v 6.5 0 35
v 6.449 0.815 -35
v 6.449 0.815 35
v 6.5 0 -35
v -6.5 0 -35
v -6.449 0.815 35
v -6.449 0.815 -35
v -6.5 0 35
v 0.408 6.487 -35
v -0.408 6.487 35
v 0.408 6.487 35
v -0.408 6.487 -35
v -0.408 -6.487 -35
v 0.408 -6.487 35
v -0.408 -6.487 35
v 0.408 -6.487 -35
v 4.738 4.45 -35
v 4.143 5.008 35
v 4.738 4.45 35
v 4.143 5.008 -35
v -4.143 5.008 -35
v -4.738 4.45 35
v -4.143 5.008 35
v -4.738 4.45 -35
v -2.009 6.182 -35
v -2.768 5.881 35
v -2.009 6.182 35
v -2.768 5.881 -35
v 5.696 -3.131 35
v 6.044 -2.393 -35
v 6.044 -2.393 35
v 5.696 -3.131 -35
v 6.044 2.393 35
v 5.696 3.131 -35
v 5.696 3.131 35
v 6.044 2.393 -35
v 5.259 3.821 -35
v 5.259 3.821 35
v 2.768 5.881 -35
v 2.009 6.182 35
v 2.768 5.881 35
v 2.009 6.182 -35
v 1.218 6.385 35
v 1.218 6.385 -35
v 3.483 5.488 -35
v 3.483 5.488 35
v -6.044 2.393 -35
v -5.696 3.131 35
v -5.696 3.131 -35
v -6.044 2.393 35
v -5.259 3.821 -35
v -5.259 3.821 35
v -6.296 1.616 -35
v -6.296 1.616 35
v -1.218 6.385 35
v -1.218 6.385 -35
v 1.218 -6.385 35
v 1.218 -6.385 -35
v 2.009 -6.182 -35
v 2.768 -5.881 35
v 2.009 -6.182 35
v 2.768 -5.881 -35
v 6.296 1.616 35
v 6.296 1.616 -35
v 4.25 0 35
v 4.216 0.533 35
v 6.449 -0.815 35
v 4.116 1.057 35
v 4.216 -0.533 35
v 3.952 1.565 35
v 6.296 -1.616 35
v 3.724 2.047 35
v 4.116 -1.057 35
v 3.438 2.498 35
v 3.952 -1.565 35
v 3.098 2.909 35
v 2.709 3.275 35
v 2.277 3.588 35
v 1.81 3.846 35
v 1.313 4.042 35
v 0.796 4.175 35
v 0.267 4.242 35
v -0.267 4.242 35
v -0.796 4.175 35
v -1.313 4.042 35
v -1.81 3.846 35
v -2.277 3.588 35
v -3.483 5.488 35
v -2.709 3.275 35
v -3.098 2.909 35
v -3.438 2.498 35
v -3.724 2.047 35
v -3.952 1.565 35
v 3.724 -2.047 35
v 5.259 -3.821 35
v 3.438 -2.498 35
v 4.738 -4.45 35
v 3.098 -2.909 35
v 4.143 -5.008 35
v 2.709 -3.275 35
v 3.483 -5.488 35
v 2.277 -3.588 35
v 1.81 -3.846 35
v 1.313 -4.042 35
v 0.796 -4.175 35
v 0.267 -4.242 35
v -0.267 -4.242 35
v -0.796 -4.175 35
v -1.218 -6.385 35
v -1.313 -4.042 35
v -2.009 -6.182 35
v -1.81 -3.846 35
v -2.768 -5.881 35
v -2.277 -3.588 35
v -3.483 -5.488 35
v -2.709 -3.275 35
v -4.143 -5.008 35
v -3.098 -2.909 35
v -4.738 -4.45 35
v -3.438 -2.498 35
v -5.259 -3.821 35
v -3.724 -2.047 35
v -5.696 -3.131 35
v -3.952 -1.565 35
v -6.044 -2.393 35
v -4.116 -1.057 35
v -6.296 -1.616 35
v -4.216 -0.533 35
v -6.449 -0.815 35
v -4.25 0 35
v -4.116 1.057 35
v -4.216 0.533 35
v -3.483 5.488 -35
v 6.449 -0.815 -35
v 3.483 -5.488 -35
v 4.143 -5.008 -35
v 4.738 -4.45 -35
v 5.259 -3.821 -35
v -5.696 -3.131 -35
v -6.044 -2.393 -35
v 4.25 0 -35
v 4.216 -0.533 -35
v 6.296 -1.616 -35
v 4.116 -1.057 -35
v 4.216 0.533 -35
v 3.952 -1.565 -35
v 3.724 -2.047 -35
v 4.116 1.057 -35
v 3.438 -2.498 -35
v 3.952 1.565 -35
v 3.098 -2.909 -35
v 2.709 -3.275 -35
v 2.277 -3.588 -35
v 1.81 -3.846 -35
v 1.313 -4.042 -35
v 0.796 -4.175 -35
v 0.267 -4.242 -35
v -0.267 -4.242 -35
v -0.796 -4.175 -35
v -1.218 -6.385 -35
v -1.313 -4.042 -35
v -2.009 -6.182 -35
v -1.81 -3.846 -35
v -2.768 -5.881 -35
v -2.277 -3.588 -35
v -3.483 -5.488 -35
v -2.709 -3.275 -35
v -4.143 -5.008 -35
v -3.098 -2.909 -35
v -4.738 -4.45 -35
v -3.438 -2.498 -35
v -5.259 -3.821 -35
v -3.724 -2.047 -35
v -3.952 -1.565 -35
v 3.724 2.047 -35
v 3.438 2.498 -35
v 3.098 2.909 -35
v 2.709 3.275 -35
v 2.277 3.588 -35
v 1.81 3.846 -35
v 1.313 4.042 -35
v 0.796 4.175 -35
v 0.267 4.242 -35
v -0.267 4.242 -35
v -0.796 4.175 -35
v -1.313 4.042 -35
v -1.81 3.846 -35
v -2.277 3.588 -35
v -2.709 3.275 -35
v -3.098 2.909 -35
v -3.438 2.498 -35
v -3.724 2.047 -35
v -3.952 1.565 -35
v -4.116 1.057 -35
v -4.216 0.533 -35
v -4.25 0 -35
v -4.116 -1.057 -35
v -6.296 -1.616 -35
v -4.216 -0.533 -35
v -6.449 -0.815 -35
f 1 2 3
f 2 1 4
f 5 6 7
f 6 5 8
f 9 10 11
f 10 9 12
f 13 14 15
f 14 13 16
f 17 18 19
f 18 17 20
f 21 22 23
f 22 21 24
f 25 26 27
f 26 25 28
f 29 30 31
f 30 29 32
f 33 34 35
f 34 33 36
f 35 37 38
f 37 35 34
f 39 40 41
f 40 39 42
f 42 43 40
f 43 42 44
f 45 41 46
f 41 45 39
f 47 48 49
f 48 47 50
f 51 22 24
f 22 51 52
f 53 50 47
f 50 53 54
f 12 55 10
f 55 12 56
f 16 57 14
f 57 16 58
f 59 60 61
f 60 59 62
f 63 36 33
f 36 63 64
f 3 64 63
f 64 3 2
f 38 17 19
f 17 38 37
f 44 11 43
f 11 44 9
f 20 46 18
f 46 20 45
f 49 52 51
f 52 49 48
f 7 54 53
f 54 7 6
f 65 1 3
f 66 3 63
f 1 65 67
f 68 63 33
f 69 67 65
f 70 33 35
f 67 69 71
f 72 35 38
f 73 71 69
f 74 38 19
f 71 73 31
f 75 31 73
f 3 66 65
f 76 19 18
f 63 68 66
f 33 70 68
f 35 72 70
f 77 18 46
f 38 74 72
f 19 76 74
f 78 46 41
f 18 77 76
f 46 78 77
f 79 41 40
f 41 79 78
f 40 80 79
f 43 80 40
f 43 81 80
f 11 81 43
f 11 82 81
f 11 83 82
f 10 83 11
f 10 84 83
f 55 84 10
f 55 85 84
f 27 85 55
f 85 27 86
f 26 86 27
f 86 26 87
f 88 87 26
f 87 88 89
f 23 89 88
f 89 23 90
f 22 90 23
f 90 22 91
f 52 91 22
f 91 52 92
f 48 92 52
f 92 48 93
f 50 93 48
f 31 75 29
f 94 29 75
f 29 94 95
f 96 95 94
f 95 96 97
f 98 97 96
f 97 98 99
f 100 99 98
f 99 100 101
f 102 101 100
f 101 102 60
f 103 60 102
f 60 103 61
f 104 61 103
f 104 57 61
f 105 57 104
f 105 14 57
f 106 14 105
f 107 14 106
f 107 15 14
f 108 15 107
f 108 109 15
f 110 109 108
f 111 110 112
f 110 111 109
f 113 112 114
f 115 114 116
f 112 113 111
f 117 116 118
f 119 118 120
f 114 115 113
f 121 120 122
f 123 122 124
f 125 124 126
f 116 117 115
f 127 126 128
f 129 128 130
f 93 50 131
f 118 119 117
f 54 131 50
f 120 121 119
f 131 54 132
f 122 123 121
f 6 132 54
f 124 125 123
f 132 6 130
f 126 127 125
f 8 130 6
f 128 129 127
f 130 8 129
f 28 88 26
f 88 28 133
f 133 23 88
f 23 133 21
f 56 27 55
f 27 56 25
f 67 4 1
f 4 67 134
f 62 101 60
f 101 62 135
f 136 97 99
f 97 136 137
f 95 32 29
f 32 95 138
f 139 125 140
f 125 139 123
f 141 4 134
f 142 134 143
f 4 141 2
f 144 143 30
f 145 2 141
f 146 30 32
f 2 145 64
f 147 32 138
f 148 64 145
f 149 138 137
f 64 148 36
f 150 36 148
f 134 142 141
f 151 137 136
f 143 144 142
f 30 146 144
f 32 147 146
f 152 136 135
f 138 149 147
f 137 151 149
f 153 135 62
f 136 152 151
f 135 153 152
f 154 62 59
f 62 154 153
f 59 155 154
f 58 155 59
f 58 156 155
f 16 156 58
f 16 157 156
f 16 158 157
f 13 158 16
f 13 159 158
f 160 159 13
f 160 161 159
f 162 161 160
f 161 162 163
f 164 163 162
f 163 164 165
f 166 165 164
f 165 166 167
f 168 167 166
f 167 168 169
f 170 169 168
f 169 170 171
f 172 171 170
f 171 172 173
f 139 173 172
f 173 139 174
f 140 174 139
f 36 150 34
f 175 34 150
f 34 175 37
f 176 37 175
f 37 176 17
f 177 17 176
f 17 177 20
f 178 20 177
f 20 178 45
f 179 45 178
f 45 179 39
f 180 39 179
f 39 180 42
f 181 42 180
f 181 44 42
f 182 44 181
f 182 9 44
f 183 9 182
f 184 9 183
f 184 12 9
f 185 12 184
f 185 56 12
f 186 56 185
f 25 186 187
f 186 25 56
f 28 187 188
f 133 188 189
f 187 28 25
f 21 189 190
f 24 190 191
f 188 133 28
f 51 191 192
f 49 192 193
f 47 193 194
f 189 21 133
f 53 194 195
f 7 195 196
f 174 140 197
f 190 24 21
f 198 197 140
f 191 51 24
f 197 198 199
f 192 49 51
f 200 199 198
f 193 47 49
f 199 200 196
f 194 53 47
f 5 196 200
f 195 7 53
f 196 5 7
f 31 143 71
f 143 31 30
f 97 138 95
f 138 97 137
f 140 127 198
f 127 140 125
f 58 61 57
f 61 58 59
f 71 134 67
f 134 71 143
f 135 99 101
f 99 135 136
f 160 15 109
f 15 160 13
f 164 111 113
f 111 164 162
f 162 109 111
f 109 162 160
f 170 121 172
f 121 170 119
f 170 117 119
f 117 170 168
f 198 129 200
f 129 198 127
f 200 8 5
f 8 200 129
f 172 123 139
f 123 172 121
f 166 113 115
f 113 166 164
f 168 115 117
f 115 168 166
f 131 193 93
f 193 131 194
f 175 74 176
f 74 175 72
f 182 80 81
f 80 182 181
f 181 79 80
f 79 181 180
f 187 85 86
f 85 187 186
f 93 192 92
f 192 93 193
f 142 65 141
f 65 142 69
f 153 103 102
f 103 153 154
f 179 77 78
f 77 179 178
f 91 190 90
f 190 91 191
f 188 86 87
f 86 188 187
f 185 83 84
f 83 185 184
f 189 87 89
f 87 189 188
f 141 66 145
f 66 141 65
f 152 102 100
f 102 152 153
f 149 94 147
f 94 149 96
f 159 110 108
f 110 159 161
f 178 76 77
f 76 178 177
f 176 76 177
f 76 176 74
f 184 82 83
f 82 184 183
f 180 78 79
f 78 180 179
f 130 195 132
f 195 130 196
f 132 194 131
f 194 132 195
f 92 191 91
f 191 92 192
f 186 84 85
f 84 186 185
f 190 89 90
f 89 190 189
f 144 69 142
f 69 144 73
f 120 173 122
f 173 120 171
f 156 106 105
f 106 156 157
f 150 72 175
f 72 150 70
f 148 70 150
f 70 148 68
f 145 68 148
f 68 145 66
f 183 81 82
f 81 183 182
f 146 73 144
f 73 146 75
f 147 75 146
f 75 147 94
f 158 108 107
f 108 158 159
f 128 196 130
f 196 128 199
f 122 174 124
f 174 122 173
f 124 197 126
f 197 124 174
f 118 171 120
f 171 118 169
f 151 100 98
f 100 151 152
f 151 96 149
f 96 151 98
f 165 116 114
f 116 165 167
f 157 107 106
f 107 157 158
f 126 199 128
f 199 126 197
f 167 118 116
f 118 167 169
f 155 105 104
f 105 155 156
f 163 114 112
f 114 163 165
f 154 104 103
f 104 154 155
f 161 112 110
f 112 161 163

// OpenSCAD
$fn = 50;


difference() {
	union() {
		translate(v = [0, 0, -35.0000000000]) {
			cylinder(h = 70, r = 6.5000000000);
		}
	}
	union() {
		translate(v = [0, 0, -100.0000000000]) {
			cylinder(h = 200, r = 4.2500000000);
		}
	}
}
